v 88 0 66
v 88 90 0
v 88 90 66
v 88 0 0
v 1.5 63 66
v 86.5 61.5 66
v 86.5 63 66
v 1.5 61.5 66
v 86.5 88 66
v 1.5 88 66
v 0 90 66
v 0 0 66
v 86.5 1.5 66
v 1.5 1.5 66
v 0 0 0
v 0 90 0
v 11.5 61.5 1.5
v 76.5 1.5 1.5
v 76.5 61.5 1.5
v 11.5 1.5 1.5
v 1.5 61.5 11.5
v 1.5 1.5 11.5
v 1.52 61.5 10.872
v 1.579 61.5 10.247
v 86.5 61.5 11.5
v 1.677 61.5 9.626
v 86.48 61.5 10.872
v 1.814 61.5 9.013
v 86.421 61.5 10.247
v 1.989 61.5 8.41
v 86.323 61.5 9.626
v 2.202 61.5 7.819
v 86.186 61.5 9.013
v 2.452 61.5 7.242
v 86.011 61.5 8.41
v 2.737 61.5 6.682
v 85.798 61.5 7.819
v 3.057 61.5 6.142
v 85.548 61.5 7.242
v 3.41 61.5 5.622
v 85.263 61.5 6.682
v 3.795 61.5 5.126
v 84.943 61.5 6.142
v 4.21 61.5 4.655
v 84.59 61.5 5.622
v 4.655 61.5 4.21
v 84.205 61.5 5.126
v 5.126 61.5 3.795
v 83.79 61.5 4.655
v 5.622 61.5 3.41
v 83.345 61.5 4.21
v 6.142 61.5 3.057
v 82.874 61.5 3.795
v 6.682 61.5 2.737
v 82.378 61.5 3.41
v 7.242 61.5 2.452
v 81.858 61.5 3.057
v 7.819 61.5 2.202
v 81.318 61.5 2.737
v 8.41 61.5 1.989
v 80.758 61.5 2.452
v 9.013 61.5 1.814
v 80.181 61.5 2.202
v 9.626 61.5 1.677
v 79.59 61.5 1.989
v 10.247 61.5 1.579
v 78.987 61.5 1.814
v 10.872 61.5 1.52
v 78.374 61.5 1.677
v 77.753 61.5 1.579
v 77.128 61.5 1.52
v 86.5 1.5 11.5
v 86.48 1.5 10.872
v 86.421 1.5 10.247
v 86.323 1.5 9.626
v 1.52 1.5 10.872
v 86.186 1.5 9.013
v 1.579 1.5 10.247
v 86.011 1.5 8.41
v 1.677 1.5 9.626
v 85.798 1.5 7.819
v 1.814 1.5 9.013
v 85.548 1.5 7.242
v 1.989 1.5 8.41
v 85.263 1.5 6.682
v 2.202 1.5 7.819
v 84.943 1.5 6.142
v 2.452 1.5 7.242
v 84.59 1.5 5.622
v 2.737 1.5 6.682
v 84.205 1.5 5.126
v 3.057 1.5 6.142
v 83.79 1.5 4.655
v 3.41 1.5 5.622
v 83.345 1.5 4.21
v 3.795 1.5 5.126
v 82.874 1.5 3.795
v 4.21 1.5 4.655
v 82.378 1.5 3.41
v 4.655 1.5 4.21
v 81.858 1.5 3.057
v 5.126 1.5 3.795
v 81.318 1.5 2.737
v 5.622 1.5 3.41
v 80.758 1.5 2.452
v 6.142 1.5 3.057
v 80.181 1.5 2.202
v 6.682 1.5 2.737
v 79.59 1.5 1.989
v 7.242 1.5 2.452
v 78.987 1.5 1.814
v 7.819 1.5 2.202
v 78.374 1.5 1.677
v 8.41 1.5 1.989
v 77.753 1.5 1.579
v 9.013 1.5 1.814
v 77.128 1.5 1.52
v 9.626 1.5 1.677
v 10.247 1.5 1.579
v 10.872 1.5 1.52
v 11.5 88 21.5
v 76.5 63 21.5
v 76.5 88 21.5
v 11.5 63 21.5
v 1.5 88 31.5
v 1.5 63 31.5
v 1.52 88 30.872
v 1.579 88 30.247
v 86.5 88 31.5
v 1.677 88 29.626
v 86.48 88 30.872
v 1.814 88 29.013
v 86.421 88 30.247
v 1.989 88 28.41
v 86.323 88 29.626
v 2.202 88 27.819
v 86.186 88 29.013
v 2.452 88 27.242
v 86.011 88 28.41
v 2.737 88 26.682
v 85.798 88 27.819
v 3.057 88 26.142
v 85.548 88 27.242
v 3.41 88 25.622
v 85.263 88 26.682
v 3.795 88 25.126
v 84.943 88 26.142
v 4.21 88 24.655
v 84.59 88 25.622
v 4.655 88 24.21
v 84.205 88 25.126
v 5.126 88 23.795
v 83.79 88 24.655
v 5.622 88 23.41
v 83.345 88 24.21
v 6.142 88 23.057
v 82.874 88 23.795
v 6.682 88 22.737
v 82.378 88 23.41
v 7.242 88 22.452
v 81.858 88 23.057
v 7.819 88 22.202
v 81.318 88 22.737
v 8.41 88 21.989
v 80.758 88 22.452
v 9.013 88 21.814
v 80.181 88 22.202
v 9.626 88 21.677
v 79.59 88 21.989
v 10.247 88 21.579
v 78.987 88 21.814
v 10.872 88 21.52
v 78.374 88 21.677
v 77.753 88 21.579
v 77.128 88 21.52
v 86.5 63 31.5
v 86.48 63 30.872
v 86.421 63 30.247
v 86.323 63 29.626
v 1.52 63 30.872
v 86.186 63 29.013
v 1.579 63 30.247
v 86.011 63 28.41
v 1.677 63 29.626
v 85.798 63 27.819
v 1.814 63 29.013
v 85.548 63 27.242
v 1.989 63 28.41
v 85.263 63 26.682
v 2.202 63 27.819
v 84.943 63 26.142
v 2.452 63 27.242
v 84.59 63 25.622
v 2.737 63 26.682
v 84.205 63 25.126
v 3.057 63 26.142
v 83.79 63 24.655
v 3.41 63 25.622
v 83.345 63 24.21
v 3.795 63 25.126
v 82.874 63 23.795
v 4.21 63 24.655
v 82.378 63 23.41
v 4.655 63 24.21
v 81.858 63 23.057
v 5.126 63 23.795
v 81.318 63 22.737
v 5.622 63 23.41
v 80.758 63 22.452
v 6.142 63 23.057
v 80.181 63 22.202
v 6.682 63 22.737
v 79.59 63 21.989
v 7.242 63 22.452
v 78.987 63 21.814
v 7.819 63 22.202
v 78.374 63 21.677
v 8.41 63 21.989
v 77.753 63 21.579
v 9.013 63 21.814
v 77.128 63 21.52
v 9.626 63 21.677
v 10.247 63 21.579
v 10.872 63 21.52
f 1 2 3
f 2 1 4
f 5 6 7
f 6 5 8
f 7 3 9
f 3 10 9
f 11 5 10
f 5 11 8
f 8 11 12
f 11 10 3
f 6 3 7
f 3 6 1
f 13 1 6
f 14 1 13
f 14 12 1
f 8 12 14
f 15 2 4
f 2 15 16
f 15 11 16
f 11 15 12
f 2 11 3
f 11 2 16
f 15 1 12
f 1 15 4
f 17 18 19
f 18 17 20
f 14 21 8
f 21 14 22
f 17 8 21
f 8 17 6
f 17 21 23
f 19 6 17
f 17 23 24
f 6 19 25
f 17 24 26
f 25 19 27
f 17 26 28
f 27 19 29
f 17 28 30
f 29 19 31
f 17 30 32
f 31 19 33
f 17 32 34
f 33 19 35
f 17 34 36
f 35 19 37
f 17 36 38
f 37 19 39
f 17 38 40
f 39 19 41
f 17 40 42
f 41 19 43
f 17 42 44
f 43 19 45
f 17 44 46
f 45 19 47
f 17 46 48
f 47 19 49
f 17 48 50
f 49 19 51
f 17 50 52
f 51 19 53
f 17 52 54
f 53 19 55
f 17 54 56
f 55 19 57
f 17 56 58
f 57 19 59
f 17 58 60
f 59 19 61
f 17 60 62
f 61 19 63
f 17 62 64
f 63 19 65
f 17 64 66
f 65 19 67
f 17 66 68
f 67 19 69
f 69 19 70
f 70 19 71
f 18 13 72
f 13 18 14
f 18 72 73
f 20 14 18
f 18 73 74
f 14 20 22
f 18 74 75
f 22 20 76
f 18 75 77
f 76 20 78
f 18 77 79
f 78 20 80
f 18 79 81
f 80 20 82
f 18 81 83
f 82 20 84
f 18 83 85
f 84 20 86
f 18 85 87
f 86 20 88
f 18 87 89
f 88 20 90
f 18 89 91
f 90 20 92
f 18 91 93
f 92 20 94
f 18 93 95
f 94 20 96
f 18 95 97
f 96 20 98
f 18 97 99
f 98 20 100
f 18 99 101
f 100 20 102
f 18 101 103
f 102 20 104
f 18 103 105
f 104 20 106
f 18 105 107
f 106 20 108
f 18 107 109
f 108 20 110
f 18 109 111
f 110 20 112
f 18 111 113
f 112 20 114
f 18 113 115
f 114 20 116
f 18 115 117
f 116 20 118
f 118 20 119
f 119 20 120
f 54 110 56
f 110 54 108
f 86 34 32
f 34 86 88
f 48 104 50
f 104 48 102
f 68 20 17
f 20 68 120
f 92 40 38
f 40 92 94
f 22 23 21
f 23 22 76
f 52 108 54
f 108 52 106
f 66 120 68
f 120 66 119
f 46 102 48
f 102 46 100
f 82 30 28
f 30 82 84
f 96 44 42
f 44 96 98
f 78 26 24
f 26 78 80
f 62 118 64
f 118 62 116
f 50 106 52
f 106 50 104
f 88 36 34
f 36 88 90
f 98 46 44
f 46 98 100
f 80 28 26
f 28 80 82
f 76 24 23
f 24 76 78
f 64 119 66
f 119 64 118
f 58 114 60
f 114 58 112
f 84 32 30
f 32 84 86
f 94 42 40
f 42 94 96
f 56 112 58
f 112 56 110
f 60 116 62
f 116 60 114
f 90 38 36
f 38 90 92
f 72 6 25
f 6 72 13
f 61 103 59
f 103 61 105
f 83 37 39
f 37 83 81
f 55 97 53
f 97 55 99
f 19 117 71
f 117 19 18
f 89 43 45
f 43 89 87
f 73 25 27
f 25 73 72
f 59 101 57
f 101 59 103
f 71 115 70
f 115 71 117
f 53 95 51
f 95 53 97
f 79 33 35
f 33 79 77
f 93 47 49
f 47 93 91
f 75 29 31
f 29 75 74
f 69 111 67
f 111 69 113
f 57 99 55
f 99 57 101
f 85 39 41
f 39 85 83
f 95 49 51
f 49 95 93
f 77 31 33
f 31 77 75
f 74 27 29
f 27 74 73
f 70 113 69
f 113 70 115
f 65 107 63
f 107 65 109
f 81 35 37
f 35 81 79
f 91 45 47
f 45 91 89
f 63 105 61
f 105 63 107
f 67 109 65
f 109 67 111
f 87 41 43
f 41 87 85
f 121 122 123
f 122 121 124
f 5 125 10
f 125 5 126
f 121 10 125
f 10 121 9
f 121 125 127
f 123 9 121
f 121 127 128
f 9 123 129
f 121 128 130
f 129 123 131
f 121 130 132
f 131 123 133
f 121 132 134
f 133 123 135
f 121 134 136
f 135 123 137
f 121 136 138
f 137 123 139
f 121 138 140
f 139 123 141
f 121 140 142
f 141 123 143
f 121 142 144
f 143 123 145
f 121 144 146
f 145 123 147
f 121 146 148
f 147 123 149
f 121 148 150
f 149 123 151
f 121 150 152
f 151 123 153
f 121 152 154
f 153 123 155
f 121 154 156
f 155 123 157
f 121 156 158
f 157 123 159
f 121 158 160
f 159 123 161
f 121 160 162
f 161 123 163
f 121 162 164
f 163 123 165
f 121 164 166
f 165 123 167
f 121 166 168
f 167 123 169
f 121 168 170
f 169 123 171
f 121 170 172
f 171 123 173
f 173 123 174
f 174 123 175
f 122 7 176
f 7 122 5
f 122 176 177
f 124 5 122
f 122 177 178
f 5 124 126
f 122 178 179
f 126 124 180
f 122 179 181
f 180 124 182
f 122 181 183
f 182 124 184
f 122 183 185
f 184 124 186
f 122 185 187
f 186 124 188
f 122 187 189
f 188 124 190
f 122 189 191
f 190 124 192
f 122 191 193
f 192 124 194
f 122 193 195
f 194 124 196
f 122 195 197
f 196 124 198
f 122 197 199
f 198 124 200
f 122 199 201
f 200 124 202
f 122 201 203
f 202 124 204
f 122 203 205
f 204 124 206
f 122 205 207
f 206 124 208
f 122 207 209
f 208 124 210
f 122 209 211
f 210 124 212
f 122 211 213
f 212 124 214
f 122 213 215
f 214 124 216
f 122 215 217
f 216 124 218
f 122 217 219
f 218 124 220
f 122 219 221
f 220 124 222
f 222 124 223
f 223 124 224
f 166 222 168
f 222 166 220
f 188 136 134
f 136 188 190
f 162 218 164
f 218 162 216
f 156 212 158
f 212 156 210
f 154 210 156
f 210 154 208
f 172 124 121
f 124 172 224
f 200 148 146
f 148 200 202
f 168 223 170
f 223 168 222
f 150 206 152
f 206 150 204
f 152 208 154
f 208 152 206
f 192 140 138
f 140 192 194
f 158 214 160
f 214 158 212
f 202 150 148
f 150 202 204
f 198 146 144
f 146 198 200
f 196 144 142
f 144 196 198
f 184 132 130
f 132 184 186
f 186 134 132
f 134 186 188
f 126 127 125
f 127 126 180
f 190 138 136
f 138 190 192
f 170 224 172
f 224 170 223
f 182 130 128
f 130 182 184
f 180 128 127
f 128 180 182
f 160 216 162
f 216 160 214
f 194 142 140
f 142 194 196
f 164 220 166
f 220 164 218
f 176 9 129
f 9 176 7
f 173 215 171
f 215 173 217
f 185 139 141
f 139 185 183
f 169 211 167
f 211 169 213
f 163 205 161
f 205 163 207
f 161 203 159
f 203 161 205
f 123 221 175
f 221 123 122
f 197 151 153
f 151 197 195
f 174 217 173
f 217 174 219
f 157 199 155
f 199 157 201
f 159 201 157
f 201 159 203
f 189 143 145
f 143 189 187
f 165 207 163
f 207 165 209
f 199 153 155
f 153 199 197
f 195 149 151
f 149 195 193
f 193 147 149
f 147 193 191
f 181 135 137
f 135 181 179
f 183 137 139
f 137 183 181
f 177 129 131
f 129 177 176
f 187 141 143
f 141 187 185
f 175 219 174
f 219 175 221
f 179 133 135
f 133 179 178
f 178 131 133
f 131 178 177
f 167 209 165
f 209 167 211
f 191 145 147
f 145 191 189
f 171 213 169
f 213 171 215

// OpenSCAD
include <boardgame_insert_toolkit_lib.2.scad>;

// determines whether lids are output.
g_b_print_lid = true;

// determines whether boxes are output.
g_b_print_box = true; 

// Focus on one box
g_isolated_print_box = ""; 

// Used to visualize how all of the boxes fit together. 
g_b_visualization = false;          
        
// this is the outer wall thickness. 
//Default = 1.5mm
g_wall_thickness = 1.5;

// The tolerance value is extra space put between planes of the lid and box that fit together.
// Increase the tolerance to loosen the fit and decrease it to tighten it.
//
// Note that the tolerance is applied exclusively to the lid.
// So if the lid is too tight or too loose, change this value ( up for looser fit, down for tighter fit ) and 
// you only need to reprint the lid.
// 
// The exception is the stackable box, where the bottom of the box is the lid of the box below,
// in which case the tolerance also affects that box bottom.
//
g_tolerance = 0.15;

// This adjusts the position of the lid detents downward. 
// The larger the value, the bigger the gap between the lid and the box.
g_tolerance_detents_pos = 0.1;

aw_box_x = 88.0; // 74.0;
aw_box_y = 90.0; // 284.0 -170.0 - 24.0;
aw_box_z = 66.0;

data =
  [
    [
      "hex tile box",
      [
        [ BOX_SIZE_XYZ, [aw_box_x, aw_box_y, aw_box_z] ],
        [ BOX_NO_LID_B, t],
        [
          BOX_COMPONENT,
          [
            [ CMP_SHAPE, FILLET ],
            [ CMP_NUM_COMPARTMENTS_XY, [1, 1] ],
            [
              CMP_COMPARTMENT_SIZE_XYZ,
              [
                aw_box_x - 2 * g_wall_thickness,
                60.0, //aw_box_y - 2 * g_wall_thickness,
                aw_box_z - 1 * g_wall_thickness
              ]
            ],
            [ POSITION_XY, [ CENTER, 0 ] ],
          ]
        ],
        [
          BOX_COMPONENT,
          [
            [ CMP_SHAPE, FILLET ],
            [ CMP_NUM_COMPARTMENTS_XY, [1, 1] ],
            [
              CMP_COMPARTMENT_SIZE_XYZ,
              [
                aw_box_x - 2 * g_wall_thickness,
                25.0, //aw_box_y - 2 * g_wall_thickness,
                (aw_box_z - 20) - 1 * g_wall_thickness
              ]
            ],
            [ POSITION_XY, [ CENTER, 61.5 ] ],
          ]
        ],
      ]
    ]
  ];


MakeAll();
